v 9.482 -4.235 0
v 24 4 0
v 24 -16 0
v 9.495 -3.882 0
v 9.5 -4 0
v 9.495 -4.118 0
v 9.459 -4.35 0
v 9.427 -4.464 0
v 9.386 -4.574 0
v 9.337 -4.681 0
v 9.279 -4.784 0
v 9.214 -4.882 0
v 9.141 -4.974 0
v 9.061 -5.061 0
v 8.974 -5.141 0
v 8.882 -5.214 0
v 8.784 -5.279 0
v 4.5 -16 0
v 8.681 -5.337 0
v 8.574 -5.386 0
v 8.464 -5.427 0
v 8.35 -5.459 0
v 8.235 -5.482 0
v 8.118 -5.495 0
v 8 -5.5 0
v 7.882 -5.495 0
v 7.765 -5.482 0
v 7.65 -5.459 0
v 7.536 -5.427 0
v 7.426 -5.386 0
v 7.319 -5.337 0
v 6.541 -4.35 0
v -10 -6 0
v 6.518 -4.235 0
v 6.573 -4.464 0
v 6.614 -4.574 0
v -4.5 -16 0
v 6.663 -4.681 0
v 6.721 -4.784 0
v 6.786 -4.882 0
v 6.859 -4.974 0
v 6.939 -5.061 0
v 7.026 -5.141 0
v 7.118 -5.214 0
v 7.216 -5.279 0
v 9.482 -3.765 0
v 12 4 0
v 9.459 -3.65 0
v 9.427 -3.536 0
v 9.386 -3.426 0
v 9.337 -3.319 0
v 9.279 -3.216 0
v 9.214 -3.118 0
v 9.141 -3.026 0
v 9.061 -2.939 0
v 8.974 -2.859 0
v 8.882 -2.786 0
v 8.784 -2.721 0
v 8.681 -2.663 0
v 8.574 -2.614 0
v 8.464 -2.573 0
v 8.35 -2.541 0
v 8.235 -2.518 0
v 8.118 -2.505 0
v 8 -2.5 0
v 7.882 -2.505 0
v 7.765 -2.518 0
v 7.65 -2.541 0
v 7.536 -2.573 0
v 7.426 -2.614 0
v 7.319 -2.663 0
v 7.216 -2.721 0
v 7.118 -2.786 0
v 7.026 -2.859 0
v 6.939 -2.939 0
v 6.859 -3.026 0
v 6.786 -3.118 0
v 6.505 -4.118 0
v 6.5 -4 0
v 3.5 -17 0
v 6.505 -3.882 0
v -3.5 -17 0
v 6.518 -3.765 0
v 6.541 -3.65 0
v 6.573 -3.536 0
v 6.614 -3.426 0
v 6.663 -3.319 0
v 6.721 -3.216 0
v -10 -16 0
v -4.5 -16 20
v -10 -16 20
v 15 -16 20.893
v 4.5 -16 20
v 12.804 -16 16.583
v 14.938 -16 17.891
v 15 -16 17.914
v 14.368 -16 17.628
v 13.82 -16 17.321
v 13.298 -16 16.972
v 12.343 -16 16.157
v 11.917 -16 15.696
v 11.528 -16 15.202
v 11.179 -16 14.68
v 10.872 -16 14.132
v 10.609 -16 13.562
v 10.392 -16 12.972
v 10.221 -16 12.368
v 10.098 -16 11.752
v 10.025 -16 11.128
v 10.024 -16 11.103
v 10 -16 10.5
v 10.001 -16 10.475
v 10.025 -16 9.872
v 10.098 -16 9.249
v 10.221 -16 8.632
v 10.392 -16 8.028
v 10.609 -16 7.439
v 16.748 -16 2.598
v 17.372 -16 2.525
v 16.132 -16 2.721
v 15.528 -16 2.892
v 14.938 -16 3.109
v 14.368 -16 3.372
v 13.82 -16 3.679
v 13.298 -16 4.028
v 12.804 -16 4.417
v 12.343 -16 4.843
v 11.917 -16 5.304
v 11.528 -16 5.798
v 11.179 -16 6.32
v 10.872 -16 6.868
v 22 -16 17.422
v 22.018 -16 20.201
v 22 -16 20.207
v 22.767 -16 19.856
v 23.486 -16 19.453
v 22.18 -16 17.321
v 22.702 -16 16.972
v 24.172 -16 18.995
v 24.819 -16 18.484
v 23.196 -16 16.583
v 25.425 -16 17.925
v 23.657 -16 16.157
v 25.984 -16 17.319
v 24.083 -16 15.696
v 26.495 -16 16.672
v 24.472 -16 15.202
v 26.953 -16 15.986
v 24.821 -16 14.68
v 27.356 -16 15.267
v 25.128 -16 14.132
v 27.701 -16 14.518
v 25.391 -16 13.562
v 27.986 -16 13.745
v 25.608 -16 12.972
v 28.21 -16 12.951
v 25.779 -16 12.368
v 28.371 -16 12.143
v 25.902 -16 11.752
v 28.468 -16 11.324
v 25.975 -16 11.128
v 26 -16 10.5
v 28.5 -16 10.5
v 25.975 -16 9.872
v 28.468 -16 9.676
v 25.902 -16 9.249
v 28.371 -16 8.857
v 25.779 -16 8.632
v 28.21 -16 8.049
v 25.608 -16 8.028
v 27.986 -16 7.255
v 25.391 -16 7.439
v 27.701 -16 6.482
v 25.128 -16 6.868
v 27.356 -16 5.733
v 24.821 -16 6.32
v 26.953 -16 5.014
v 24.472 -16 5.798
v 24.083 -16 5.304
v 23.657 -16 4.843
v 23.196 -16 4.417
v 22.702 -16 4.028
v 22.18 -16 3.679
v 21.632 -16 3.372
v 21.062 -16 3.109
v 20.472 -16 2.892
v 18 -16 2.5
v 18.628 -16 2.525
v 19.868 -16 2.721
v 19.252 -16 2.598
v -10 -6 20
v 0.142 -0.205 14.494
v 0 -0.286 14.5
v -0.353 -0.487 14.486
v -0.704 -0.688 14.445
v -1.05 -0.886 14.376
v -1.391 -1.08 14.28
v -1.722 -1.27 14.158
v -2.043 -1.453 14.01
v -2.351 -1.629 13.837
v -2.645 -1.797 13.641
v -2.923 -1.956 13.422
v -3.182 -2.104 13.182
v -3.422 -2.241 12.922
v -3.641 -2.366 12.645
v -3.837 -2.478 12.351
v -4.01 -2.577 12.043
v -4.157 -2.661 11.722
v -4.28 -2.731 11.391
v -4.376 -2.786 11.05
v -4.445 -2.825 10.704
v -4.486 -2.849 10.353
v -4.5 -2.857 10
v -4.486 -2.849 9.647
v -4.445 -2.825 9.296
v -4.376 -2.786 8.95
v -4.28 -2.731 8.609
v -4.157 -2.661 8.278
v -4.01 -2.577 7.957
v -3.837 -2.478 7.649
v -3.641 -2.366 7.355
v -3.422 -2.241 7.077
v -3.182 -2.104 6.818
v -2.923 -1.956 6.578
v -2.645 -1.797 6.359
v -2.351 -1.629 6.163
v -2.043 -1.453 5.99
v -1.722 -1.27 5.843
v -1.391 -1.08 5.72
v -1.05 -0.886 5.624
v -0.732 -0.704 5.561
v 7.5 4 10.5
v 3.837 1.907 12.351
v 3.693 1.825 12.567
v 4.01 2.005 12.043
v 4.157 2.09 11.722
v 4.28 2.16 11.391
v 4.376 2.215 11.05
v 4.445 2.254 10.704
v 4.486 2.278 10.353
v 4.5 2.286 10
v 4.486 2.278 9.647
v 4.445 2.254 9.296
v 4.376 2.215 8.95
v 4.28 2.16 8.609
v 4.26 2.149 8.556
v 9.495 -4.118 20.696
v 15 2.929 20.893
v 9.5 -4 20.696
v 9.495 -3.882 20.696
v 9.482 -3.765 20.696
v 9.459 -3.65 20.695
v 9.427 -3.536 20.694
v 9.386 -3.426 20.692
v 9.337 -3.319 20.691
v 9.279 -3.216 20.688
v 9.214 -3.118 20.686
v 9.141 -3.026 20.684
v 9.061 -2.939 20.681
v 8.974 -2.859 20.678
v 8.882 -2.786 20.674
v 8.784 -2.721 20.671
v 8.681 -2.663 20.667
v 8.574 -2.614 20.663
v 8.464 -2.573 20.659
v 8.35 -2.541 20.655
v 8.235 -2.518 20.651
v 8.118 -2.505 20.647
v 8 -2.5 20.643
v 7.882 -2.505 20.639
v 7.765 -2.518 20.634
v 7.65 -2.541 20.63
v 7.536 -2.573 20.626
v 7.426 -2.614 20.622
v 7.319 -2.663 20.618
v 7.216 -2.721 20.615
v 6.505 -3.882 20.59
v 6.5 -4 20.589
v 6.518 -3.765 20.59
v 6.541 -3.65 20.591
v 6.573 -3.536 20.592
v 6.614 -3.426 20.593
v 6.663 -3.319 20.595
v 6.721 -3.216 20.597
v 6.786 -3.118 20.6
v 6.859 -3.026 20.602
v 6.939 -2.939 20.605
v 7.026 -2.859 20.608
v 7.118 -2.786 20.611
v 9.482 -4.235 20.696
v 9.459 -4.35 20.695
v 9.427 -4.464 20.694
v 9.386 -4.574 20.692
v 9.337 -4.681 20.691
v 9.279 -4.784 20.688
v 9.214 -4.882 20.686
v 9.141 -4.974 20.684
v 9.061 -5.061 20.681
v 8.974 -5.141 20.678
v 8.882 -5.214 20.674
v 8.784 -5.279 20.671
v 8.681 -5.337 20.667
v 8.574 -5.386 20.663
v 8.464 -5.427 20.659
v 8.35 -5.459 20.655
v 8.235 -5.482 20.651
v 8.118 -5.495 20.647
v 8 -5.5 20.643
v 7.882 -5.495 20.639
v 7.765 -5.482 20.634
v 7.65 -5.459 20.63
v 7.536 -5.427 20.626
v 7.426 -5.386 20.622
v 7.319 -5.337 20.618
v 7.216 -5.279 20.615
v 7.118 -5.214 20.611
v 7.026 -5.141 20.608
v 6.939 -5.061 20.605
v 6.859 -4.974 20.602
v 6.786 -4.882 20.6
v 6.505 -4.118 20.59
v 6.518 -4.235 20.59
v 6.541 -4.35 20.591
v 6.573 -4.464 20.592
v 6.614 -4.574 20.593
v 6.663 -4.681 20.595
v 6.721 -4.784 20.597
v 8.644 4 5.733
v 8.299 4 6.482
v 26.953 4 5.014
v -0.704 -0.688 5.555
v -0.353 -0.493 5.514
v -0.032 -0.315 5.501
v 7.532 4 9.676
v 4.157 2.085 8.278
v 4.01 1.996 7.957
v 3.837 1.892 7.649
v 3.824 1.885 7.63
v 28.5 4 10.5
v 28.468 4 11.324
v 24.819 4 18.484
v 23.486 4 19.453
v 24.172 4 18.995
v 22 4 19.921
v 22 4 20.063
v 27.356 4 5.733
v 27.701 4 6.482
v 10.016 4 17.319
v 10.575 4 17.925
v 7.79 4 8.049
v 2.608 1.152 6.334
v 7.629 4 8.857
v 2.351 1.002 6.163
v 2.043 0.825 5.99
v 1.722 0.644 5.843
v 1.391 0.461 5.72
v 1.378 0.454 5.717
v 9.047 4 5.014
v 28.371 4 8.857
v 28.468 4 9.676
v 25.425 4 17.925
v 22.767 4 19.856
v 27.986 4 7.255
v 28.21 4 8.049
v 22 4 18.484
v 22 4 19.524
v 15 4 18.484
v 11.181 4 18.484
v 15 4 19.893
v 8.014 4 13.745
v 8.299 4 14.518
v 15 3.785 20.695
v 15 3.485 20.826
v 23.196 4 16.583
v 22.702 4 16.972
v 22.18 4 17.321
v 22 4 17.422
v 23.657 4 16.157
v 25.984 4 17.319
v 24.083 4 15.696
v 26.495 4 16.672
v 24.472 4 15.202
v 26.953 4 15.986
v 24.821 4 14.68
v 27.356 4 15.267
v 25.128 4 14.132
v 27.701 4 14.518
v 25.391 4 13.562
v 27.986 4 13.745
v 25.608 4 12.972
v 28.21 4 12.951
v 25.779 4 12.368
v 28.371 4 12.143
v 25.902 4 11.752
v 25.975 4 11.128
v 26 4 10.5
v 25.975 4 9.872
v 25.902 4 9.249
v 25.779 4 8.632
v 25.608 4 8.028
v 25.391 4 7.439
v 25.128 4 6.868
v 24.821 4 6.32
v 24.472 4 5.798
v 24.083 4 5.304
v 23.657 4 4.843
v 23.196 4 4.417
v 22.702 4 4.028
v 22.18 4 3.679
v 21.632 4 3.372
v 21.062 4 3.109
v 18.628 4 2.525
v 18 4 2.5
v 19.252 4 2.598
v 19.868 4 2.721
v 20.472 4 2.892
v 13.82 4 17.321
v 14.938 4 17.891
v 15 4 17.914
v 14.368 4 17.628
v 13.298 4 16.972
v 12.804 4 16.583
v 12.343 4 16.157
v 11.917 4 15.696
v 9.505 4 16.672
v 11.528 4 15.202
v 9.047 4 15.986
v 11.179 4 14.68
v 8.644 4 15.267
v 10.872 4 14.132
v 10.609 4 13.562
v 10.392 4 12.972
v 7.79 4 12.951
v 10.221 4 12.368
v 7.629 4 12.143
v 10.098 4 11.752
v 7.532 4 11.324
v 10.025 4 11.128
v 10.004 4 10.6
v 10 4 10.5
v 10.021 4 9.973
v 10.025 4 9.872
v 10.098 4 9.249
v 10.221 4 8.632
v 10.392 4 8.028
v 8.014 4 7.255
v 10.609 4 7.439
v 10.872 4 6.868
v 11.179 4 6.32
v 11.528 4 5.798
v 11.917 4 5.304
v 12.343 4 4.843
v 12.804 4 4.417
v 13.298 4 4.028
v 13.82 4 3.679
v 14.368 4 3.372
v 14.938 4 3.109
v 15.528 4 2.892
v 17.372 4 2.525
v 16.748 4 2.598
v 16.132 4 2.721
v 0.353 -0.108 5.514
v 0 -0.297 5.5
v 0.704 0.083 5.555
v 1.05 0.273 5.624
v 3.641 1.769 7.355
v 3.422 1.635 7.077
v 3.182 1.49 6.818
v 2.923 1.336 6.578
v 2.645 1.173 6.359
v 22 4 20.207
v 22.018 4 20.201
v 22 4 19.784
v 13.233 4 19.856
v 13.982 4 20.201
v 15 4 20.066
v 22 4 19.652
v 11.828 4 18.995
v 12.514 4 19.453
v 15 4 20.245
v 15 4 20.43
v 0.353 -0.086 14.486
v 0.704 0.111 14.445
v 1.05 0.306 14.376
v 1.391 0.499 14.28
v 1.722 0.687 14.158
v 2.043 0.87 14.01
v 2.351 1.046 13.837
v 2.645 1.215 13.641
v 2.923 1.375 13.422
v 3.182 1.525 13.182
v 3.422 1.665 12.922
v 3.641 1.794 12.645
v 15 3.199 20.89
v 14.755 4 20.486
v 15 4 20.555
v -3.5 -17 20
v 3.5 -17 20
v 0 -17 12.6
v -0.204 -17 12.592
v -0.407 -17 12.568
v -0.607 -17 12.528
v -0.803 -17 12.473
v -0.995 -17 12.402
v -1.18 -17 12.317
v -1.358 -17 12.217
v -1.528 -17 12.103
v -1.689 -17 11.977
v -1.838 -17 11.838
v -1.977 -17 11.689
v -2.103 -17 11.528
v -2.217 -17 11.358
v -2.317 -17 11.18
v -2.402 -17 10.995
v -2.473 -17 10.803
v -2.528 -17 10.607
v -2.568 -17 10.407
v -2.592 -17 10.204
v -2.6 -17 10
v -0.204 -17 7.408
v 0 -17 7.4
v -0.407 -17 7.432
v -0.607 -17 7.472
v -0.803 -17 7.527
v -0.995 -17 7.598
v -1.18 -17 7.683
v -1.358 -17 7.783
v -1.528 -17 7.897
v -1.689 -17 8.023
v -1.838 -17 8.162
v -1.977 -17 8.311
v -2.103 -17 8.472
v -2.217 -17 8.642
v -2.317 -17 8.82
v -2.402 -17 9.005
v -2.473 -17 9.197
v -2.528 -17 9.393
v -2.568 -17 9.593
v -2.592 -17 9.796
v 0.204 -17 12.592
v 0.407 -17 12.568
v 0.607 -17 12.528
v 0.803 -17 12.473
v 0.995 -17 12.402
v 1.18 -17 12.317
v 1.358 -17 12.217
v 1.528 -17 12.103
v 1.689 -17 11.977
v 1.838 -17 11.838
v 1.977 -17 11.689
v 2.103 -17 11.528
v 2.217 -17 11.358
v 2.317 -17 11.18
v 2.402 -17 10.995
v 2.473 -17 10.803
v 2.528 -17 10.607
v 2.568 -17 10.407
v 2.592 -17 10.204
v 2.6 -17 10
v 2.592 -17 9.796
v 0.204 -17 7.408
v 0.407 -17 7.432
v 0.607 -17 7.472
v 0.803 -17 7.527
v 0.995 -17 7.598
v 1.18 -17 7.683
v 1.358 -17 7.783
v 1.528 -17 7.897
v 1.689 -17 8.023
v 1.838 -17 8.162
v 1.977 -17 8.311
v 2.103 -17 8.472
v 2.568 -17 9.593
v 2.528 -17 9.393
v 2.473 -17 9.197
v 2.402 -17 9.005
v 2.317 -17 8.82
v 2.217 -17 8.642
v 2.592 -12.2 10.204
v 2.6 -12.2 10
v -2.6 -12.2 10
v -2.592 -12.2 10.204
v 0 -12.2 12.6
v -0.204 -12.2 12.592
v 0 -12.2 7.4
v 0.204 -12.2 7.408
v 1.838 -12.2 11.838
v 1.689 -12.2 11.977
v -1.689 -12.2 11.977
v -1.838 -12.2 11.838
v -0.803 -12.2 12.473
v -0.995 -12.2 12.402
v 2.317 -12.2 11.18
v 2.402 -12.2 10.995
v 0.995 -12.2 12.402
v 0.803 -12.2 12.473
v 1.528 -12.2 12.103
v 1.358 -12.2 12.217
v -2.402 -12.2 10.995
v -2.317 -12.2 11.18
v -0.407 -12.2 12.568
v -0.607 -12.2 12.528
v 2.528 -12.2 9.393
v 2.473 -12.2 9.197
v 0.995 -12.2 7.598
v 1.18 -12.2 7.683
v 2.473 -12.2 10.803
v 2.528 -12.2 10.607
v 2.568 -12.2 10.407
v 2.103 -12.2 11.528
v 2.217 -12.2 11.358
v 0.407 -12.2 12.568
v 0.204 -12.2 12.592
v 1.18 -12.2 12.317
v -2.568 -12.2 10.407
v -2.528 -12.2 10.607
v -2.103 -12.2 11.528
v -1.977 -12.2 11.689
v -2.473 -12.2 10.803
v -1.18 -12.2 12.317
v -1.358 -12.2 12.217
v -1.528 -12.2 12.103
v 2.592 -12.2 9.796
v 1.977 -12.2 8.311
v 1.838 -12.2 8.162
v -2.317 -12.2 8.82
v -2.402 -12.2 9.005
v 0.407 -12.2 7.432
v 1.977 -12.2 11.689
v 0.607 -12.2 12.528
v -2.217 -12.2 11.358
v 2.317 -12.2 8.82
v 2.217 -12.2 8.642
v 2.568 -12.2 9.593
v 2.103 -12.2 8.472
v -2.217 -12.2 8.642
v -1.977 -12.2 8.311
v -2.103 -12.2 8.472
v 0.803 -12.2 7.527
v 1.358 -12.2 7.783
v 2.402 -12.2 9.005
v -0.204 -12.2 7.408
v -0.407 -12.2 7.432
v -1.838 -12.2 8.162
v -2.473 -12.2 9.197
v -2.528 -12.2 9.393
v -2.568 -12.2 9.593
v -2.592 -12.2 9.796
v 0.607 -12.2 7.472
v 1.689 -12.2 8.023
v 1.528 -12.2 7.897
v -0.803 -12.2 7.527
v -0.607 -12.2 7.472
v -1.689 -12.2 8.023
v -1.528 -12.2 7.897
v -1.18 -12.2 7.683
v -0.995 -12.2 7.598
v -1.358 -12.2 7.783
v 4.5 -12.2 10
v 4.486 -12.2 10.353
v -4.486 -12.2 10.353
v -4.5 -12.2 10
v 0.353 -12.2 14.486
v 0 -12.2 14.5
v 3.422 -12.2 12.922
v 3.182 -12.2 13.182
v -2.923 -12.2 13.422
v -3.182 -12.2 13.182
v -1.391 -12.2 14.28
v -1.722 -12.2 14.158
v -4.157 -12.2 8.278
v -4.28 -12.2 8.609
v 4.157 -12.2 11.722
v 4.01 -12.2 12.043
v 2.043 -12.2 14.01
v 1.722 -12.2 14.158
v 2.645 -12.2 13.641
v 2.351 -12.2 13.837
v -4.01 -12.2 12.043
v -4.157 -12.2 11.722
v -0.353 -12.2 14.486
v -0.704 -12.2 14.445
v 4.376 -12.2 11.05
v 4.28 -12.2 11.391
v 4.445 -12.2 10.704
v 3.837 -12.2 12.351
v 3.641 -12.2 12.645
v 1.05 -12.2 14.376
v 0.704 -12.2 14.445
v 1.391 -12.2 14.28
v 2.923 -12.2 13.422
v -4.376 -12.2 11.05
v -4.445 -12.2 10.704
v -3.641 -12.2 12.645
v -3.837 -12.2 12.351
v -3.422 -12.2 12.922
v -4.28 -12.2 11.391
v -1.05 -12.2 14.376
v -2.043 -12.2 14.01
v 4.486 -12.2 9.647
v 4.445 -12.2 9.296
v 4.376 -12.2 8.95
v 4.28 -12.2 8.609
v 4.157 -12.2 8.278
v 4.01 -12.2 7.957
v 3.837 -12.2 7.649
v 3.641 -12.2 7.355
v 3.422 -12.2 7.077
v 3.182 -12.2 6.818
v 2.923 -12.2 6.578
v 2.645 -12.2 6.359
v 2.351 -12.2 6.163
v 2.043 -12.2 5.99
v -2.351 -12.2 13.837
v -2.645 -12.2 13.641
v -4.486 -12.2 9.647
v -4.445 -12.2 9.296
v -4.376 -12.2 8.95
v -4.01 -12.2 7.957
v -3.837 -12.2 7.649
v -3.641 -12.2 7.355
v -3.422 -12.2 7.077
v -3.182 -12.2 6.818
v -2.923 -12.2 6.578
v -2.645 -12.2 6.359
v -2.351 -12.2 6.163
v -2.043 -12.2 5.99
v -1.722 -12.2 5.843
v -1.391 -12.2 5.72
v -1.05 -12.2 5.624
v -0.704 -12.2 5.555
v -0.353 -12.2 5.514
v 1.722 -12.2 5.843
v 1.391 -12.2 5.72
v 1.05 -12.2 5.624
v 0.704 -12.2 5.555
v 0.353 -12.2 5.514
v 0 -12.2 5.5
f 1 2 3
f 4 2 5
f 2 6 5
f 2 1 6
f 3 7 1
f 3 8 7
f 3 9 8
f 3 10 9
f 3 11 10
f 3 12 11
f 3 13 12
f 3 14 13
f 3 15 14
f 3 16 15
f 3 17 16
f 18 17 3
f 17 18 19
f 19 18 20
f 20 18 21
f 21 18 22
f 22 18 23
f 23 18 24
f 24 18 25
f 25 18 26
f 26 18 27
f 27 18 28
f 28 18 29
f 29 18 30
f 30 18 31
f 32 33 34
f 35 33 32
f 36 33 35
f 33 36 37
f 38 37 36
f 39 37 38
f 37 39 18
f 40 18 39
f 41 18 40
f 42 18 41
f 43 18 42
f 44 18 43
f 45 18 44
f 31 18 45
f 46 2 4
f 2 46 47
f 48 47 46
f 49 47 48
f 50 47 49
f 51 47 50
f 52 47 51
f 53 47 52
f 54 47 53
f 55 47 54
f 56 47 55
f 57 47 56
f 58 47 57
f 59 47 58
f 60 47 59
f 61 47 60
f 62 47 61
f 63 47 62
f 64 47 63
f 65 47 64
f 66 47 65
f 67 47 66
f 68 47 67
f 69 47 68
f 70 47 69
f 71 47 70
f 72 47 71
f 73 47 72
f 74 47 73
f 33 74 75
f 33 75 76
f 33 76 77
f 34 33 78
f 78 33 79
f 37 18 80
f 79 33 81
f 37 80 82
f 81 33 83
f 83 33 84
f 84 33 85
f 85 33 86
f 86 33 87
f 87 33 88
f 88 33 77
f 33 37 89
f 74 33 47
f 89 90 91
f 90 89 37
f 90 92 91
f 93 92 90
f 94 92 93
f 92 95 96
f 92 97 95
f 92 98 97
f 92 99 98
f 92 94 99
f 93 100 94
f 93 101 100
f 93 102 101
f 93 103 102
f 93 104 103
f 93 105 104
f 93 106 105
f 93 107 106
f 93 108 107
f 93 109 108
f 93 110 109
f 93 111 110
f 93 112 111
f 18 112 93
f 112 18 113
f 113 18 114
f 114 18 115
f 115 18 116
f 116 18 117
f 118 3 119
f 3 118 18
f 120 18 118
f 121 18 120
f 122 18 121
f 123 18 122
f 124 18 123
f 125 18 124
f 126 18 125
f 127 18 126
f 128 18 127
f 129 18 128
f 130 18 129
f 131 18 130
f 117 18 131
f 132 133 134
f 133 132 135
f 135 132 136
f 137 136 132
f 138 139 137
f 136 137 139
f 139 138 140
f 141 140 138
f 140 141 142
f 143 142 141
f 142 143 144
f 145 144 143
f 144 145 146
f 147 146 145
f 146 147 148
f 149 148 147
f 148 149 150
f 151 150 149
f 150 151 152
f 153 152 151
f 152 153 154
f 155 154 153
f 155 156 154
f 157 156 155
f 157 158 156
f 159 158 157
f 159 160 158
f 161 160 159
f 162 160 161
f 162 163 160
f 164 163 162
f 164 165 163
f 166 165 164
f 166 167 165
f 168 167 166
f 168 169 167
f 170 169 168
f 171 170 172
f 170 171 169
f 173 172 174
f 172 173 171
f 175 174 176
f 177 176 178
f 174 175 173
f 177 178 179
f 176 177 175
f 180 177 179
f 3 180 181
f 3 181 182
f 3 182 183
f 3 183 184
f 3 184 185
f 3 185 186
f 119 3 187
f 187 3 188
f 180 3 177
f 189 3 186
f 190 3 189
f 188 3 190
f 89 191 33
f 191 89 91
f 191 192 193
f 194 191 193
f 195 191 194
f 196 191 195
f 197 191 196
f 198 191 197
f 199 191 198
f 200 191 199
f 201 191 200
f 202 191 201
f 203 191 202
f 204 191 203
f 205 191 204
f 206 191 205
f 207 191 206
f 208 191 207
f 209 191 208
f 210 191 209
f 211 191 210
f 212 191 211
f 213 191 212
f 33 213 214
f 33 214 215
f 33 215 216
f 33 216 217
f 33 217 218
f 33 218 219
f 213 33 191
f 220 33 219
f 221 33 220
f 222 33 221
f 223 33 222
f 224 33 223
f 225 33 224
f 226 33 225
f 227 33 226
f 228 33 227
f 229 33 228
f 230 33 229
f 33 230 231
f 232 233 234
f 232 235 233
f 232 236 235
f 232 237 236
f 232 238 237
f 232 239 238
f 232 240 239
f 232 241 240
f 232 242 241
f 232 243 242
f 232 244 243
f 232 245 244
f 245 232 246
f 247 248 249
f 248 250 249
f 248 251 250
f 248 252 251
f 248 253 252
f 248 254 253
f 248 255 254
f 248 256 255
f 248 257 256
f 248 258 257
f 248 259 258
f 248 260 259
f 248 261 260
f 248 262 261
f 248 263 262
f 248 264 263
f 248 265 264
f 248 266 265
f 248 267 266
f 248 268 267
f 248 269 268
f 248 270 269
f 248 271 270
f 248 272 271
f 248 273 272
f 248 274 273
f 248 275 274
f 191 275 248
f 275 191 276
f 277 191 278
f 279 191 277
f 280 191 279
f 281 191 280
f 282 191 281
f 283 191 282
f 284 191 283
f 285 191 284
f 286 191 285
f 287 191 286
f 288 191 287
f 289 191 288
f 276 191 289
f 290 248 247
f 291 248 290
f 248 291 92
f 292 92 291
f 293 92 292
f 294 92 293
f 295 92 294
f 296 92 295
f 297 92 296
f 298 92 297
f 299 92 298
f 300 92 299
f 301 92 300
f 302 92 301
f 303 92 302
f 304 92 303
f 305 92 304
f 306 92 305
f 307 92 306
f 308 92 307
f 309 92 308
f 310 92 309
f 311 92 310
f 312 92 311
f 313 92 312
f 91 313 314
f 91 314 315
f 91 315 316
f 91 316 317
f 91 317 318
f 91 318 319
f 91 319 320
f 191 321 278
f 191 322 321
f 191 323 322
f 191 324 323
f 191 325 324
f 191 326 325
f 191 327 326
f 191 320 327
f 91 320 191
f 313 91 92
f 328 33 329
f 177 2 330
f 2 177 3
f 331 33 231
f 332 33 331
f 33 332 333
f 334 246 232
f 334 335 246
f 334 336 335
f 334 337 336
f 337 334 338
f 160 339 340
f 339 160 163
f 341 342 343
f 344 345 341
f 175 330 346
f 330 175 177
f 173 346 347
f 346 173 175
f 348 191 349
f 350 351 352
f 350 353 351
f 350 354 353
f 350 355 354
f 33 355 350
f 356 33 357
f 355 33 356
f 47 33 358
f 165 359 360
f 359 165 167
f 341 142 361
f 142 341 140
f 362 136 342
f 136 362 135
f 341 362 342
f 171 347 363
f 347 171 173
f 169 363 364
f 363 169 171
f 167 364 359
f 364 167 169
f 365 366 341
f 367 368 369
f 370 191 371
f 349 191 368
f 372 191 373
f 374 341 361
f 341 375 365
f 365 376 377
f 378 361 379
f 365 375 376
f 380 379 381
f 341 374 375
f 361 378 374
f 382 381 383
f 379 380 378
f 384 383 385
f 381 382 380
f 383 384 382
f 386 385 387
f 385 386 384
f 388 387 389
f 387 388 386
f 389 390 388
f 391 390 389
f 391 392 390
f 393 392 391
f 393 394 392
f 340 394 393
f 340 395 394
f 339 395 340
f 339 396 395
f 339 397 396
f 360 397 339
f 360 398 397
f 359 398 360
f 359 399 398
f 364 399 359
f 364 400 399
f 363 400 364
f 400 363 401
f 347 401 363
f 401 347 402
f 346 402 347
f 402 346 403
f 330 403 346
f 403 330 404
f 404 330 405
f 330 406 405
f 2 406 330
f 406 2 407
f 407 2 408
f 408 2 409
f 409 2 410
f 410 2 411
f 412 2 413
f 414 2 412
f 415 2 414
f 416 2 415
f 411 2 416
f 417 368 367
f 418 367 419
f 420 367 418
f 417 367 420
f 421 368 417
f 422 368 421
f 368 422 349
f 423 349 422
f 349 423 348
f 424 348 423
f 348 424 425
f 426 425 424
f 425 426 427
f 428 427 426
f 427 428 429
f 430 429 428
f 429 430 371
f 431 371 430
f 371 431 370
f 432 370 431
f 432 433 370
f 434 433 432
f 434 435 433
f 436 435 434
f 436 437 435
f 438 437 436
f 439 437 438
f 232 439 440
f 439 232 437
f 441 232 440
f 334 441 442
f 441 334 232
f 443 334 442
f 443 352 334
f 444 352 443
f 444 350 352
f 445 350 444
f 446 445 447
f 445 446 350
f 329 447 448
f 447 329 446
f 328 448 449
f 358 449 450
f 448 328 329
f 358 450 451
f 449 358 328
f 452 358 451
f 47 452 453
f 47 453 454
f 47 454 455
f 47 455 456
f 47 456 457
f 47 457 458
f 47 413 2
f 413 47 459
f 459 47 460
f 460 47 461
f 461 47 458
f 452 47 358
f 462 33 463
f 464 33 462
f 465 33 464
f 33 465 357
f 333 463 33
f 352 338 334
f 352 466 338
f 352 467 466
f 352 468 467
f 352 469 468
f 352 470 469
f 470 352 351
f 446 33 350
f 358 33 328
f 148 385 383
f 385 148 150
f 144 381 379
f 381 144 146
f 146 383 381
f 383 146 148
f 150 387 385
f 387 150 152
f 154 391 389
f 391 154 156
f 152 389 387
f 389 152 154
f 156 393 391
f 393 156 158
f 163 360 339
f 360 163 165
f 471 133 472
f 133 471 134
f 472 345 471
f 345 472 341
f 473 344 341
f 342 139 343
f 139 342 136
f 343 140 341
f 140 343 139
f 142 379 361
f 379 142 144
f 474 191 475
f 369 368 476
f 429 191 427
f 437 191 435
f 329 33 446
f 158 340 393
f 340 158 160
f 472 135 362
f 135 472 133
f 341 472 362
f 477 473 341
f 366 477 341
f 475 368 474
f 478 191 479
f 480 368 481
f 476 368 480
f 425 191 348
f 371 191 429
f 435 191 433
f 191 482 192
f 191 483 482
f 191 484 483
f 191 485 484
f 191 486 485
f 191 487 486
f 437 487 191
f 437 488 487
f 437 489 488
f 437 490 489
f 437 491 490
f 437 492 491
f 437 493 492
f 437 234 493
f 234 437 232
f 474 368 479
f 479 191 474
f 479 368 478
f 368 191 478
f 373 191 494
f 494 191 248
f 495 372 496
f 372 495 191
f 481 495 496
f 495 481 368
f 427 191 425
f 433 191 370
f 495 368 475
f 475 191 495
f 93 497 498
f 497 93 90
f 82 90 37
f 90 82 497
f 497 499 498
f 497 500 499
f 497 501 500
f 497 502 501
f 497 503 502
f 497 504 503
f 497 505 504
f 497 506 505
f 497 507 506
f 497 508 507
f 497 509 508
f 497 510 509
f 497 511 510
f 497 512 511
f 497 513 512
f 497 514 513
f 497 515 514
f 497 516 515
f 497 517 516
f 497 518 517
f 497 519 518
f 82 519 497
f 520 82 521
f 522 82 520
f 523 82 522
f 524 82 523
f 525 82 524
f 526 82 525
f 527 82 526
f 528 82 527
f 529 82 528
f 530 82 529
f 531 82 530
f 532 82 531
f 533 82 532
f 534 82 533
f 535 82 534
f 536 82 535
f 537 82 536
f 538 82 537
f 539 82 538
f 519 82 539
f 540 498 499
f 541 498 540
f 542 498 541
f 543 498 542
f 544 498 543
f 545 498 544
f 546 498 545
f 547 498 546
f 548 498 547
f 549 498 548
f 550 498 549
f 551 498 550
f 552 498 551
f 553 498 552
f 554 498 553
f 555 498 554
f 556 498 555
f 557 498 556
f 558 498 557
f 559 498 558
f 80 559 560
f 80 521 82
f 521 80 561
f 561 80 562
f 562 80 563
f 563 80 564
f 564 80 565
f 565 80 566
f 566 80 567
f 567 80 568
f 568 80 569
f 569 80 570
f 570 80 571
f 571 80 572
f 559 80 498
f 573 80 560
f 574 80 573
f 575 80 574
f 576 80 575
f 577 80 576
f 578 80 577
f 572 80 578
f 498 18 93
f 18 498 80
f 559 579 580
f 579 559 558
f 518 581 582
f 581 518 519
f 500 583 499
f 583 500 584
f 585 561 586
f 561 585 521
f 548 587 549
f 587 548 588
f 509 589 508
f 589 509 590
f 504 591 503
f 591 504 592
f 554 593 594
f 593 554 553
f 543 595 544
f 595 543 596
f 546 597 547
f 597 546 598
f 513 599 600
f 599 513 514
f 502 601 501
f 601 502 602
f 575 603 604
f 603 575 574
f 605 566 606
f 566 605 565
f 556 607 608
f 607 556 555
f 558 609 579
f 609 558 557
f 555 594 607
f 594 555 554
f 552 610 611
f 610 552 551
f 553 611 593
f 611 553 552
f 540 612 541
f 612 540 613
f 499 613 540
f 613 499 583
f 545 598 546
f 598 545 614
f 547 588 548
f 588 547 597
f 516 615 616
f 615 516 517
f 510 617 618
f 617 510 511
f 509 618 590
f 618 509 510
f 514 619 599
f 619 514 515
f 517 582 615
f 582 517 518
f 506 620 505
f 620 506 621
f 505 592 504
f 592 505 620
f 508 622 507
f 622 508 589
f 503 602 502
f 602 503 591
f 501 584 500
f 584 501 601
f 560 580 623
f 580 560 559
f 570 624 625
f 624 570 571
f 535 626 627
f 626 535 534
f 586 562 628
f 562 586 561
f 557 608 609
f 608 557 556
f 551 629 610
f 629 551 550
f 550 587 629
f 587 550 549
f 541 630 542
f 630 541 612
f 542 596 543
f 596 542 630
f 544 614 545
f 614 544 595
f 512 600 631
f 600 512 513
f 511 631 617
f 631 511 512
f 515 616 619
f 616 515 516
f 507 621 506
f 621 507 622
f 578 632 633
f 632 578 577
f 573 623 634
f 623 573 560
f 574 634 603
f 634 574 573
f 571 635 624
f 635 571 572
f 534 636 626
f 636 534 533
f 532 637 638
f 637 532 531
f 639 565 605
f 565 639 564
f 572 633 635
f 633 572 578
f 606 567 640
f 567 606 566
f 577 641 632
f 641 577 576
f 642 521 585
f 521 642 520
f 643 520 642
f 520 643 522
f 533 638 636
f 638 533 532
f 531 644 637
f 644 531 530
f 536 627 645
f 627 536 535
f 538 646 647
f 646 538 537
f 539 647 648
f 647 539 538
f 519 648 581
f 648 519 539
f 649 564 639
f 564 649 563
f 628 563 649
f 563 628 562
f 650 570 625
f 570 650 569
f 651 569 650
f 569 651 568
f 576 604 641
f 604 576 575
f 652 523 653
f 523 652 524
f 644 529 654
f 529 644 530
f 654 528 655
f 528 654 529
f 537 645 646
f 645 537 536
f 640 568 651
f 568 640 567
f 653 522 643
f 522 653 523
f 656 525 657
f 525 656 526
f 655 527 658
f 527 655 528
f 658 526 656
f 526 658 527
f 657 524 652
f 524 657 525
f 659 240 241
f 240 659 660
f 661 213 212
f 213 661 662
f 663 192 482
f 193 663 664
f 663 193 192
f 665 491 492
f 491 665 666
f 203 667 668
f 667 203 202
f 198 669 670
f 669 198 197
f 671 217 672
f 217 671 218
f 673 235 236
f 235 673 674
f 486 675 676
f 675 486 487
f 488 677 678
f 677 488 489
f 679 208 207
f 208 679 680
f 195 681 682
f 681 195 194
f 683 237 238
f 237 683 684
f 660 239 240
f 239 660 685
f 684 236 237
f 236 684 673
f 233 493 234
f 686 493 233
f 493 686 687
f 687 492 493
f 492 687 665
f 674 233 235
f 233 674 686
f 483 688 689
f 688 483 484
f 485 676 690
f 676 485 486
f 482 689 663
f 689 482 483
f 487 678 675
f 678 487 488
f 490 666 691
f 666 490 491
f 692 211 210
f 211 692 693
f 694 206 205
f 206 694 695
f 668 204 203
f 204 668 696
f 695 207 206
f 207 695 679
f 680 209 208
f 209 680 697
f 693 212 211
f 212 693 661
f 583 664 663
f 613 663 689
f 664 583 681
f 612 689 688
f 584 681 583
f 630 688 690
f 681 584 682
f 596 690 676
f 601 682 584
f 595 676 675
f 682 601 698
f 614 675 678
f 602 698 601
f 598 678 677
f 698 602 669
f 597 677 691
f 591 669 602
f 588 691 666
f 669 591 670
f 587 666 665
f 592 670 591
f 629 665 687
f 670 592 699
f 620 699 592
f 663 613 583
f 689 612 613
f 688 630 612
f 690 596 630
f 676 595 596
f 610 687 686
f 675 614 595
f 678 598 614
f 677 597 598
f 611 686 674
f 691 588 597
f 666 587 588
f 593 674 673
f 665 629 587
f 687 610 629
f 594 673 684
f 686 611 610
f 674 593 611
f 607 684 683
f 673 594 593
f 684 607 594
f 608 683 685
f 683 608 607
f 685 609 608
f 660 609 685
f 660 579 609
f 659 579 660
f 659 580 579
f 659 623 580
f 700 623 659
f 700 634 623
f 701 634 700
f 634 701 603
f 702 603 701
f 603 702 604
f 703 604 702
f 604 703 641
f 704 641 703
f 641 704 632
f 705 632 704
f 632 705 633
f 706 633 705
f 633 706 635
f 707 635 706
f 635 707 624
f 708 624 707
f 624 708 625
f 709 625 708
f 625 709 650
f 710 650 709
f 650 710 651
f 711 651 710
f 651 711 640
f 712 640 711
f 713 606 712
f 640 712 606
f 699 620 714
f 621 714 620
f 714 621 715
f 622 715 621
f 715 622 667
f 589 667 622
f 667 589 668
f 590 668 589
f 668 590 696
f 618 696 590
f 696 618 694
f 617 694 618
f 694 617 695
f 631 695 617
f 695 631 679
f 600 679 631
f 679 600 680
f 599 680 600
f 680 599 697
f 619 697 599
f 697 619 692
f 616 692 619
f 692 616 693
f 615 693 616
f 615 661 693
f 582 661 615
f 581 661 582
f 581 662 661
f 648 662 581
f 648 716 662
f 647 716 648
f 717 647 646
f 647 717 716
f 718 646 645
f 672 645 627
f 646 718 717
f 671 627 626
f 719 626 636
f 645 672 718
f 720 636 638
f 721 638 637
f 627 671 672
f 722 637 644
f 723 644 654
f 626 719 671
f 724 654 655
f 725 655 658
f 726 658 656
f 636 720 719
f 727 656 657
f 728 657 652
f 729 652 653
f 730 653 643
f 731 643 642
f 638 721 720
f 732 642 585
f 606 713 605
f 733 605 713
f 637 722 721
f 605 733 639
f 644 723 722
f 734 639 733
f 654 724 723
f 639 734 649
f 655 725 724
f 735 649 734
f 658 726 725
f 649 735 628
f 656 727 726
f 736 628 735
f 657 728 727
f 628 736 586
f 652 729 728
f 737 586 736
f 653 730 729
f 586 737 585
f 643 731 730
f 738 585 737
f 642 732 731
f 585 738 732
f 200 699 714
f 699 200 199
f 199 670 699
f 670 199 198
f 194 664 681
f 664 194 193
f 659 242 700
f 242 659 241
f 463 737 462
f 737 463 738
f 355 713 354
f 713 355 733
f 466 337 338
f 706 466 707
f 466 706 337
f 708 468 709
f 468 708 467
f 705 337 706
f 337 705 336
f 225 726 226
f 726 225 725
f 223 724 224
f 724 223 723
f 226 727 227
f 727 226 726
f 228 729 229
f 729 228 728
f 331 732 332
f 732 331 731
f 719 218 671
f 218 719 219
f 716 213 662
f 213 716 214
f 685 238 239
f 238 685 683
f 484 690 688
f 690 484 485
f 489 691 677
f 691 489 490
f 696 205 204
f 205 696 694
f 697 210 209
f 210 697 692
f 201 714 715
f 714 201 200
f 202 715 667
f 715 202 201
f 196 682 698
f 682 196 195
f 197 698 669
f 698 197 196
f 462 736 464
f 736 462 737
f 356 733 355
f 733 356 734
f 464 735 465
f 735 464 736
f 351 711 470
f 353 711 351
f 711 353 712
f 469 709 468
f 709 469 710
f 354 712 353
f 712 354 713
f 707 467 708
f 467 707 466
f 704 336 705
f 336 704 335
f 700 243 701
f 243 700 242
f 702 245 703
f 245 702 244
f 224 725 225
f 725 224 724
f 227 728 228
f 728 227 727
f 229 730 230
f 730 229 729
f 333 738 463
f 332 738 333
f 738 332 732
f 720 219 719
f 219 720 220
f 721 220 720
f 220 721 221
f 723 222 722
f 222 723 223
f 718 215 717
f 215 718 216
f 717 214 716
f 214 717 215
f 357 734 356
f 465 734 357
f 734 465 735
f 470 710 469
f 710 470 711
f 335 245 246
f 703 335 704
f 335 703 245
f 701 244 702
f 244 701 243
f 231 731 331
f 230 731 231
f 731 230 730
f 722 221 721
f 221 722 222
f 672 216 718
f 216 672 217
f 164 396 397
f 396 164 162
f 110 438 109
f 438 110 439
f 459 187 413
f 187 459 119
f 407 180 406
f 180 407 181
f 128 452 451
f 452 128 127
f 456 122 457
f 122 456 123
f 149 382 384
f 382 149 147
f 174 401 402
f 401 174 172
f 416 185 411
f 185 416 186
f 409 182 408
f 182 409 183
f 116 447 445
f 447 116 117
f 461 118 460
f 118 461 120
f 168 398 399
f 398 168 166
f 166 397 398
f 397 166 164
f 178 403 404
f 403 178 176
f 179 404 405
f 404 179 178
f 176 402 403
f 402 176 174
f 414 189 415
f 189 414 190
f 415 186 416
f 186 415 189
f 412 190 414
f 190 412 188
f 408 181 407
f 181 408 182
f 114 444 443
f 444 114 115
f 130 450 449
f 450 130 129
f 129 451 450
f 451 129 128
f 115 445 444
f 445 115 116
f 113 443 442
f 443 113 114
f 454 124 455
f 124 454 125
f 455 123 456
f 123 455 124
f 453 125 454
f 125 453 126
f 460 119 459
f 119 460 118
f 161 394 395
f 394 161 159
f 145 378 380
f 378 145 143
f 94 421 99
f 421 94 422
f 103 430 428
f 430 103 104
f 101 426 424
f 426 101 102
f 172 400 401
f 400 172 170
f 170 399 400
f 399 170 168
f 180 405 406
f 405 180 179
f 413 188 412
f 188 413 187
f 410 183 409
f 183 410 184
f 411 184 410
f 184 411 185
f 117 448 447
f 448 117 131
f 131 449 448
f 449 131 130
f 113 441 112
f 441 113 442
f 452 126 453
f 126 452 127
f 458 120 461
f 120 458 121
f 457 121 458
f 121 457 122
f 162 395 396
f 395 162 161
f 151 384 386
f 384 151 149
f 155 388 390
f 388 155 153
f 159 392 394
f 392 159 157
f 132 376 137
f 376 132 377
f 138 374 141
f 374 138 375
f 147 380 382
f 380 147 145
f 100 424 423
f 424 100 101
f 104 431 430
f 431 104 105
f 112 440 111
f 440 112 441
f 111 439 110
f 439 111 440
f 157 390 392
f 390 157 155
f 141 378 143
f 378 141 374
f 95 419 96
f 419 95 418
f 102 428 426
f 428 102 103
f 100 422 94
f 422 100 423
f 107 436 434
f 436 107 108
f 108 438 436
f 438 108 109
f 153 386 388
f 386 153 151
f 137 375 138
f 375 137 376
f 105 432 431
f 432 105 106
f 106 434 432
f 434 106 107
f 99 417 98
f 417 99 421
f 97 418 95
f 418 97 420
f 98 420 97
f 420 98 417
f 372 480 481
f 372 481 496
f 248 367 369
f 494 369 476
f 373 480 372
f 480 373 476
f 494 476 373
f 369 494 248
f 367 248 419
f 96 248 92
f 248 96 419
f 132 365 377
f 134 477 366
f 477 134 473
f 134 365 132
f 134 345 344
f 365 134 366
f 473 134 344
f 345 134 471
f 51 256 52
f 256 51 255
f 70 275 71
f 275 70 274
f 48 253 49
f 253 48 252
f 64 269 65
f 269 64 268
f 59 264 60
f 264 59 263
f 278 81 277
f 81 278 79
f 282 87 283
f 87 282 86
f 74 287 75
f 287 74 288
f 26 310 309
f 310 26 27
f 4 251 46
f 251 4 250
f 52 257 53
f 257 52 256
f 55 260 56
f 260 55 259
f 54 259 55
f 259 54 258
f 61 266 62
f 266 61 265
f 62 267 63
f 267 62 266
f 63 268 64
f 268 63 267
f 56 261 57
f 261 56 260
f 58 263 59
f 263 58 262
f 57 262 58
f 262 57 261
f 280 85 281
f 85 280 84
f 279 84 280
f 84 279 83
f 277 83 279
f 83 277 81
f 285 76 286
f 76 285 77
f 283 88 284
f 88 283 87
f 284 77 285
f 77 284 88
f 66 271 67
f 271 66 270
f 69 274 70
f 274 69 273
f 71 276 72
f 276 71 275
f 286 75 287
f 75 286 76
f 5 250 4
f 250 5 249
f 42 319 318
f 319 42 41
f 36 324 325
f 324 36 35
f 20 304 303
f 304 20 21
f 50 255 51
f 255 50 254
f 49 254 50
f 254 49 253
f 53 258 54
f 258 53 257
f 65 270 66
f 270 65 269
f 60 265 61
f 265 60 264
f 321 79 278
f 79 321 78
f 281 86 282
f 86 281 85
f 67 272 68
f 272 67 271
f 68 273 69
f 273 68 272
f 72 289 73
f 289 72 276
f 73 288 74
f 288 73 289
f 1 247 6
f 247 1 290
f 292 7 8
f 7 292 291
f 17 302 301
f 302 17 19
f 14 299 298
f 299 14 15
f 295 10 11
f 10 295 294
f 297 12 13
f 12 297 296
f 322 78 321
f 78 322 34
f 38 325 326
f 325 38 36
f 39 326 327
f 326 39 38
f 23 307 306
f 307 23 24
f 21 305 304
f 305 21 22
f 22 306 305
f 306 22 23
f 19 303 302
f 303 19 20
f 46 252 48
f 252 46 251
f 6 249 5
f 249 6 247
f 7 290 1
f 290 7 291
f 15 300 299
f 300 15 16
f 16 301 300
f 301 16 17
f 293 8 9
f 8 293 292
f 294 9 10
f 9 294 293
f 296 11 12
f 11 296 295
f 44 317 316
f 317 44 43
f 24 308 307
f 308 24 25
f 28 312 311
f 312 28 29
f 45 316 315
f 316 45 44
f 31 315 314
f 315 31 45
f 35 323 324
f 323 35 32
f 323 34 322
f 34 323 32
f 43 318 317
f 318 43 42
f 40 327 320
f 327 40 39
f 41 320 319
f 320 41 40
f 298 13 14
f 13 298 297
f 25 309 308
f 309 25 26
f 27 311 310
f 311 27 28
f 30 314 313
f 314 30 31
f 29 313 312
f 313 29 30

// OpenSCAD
$fn=80;


difference() {
   union() {
      translate([-15,-16,0]) {
         hull() {
            translate([5,0,0]) cube([25,10,20]);
            translate([33,0,10.5]) rotate([-90,0,0]) cylinder(d=21,h=20);

            translate([27,0,0]) cube([12,20,15]);

         }

         /* angled bit to fit in v-slot */
         translate([19.5,0,0]) rotate([0,0,180])
            linear_extrude(height=20)
            polygon(points=[[-0.1,0],[0,0],[1,1],[8,1],[9,0],[9,-0.1]]);
      }
   }

   /* conduit hole */
   translate([18,-17,10.5]) rotate([-90,0,0]) cylinder(d=16,h=25);
   translate([0,-2.2,10]) rotate([90,0,0]) {
      /* bolt holes */
      translate([0,0,14-4.8]) cylinder(h=15,d=5.2);

      /* cap holes (with a little gap to allow bridging */
      translate([0,0,-20]) cylinder(h=30,d=9);
   }
   translate([15,-20,12]) cube([7,30,10]);
   translate([8,-4,-1]) cylinder(d=3,h=30);
}
